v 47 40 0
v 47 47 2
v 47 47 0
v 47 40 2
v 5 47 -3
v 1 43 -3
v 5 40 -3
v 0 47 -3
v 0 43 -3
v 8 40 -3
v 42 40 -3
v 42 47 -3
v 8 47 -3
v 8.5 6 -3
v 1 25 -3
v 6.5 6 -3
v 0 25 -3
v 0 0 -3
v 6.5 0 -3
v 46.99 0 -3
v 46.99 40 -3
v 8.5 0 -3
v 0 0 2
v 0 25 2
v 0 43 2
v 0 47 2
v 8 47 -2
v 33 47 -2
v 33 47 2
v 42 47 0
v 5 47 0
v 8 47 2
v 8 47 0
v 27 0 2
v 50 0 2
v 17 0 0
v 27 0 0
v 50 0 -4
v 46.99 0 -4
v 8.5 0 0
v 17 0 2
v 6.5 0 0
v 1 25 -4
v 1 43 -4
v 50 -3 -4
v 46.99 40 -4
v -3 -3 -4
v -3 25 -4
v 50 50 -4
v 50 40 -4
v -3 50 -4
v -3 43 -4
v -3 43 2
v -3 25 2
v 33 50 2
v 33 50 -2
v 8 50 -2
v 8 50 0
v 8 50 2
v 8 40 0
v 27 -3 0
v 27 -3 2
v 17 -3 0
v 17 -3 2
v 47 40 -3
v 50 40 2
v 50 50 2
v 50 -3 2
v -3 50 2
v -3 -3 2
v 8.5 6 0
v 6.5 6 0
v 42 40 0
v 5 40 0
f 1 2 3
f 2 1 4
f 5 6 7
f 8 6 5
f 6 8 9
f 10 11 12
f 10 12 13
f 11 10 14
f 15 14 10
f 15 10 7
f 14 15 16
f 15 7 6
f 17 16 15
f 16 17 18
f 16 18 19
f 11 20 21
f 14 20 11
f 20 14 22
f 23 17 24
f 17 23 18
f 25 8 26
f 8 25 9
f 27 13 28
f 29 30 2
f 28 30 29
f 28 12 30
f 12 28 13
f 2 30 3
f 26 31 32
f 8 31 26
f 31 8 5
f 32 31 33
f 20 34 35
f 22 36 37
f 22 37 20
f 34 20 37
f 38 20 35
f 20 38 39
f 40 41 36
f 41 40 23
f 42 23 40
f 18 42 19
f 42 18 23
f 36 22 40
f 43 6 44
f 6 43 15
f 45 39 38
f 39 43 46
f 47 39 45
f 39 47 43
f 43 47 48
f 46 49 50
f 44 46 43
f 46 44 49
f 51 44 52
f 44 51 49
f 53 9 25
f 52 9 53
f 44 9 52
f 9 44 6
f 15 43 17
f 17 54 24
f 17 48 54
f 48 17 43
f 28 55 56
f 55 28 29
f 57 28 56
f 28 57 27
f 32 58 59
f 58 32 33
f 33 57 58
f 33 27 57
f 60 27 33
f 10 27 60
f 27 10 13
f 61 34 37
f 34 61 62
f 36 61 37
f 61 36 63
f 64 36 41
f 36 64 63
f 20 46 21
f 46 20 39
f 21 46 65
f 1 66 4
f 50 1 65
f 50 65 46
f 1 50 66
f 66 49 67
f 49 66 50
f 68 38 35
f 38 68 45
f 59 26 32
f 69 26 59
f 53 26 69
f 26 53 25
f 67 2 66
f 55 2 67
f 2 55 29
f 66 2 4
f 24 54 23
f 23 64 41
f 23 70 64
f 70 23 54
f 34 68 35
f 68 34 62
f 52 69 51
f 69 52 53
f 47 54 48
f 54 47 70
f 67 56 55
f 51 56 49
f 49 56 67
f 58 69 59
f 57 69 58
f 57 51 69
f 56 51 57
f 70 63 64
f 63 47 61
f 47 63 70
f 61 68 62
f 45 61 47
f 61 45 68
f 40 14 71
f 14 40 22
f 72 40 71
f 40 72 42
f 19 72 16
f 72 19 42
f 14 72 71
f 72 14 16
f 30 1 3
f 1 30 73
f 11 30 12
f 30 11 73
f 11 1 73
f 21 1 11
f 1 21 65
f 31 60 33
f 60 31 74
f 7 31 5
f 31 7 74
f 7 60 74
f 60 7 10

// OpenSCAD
// Monture carte Lichee Pi


pcb_depth = 1; // 1mm
pcb_width = 47;
pcb_height = pcb_width;

module licheepi_pcb_board(margin = 0, depth = 1) {
        translate([-margin, -margin , 0])
        cube([pcb_width + 2*margin,pcb_height + 2*margin ,depth]);
}

module licheepi() {
    
    ethernet_width = 21;
    ethernet_height = 16;
    ethernet_depth = 18;
    ethernet_bottom_offset_from_top_surface = -4;
    ethernet_bottom_offset_from_left = -9;
    ethernet_bottom_offset_from_front = 2;

    licheepi_pcb_board(depth = pcb_depth);
    
    color([1,0,0])
    translate([pcb_width + ethernet_bottom_offset_from_left,
   ethernet_bottom_offset_from_front,
    ethernet_bottom_offset_from_top_surface])
    cube([ethernet_width,ethernet_height,ethernet_depth]);
    
}



module enclosing() {
    
    difference() {
        licheepi_pcb_board(margin = 3, depth = 6);
        
        union() {

            translate([0,0,1])            
            licheepi_pcb_board(margin = 0, depth = 10);
            
            translate([-4,25,0])
            cube([5, 18, 10]);
    
            translate([8,pcb_height,2])
            cube([25, 5, 10]);
            
            translate([17, -4, 4])
            cube([10, 8, 10]);
            
            translate([pcb_width - 0.01,0,0])
            cube([20,40,50]);
        }
        
    }
    
}

module bossages() {
    translate([6.5,0,-3])
    cube([2,6,3]);
    
    translate([pcb_width - 5, pcb_height - 7, -3])
    cube([5,7,3]);
    
    translate([5, pcb_height - 7, -3])
    cube([3,10,3]);
    
    
}


/*
color([0,0,1])
licheepi();
*/

translate([0,0,-4])
enclosing();
bossages();
